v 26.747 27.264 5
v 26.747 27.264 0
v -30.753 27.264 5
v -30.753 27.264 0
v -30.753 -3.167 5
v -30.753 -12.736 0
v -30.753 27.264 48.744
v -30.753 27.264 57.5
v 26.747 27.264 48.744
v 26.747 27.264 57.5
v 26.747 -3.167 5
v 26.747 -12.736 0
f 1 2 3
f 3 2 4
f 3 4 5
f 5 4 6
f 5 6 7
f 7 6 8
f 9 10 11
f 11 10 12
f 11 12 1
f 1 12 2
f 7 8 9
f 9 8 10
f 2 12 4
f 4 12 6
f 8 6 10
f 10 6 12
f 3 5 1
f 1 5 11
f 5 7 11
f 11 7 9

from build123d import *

# Parameters (mm, degrees)
SKETCH3_W           = 57.5
SKETCH3_H           = 40
BOSS_EXTRUDE1_DEPTH = 57.5
CUT_EXTRUDE1_DEPTH  = 86.766124704
CUT_EXTRUDE2_DEPTH  = 86.766124704


with BuildPart() as part:
    # Sketch3 → Boss-Extrude1 (new body)
    with BuildSketch(Plane.XY):
        with Locations((-2.002808989, 7.264044944)):
            Rectangle(SKETCH3_W, SKETCH3_H)
    extrude(amount=BOSS_EXTRUDE1_DEPTH)

    # Sketch7 → Cut-Extrude1 (cut, through all)
    with BuildSketch(Plane(origin=(26.747191011, 0, 0), x_dir=(0, 0, -1), z_dir=(1, 0, 0))):
        Polygon((-57.5, 27.264044944), (0, -12.735955056), (-57.5, -12.735955056), align=None)
    extrude(amount=-CUT_EXTRUDE1_DEPTH, mode=Mode.SUBTRACT)

    # Sketch8 → Cut-Extrude2 (cut, through all)
    with BuildSketch(Plane(origin=(26.747191011, 0, 0), x_dir=(0, 0, -1), z_dir=(1, 0, 0))):
        Polygon((-5, 27.264044944), (-5, -3.166856914), (-48.744421421, 27.264044944), align=None)
    extrude(amount=-CUT_EXTRUDE2_DEPTH, mode=Mode.SUBTRACT)


solid = part.part
